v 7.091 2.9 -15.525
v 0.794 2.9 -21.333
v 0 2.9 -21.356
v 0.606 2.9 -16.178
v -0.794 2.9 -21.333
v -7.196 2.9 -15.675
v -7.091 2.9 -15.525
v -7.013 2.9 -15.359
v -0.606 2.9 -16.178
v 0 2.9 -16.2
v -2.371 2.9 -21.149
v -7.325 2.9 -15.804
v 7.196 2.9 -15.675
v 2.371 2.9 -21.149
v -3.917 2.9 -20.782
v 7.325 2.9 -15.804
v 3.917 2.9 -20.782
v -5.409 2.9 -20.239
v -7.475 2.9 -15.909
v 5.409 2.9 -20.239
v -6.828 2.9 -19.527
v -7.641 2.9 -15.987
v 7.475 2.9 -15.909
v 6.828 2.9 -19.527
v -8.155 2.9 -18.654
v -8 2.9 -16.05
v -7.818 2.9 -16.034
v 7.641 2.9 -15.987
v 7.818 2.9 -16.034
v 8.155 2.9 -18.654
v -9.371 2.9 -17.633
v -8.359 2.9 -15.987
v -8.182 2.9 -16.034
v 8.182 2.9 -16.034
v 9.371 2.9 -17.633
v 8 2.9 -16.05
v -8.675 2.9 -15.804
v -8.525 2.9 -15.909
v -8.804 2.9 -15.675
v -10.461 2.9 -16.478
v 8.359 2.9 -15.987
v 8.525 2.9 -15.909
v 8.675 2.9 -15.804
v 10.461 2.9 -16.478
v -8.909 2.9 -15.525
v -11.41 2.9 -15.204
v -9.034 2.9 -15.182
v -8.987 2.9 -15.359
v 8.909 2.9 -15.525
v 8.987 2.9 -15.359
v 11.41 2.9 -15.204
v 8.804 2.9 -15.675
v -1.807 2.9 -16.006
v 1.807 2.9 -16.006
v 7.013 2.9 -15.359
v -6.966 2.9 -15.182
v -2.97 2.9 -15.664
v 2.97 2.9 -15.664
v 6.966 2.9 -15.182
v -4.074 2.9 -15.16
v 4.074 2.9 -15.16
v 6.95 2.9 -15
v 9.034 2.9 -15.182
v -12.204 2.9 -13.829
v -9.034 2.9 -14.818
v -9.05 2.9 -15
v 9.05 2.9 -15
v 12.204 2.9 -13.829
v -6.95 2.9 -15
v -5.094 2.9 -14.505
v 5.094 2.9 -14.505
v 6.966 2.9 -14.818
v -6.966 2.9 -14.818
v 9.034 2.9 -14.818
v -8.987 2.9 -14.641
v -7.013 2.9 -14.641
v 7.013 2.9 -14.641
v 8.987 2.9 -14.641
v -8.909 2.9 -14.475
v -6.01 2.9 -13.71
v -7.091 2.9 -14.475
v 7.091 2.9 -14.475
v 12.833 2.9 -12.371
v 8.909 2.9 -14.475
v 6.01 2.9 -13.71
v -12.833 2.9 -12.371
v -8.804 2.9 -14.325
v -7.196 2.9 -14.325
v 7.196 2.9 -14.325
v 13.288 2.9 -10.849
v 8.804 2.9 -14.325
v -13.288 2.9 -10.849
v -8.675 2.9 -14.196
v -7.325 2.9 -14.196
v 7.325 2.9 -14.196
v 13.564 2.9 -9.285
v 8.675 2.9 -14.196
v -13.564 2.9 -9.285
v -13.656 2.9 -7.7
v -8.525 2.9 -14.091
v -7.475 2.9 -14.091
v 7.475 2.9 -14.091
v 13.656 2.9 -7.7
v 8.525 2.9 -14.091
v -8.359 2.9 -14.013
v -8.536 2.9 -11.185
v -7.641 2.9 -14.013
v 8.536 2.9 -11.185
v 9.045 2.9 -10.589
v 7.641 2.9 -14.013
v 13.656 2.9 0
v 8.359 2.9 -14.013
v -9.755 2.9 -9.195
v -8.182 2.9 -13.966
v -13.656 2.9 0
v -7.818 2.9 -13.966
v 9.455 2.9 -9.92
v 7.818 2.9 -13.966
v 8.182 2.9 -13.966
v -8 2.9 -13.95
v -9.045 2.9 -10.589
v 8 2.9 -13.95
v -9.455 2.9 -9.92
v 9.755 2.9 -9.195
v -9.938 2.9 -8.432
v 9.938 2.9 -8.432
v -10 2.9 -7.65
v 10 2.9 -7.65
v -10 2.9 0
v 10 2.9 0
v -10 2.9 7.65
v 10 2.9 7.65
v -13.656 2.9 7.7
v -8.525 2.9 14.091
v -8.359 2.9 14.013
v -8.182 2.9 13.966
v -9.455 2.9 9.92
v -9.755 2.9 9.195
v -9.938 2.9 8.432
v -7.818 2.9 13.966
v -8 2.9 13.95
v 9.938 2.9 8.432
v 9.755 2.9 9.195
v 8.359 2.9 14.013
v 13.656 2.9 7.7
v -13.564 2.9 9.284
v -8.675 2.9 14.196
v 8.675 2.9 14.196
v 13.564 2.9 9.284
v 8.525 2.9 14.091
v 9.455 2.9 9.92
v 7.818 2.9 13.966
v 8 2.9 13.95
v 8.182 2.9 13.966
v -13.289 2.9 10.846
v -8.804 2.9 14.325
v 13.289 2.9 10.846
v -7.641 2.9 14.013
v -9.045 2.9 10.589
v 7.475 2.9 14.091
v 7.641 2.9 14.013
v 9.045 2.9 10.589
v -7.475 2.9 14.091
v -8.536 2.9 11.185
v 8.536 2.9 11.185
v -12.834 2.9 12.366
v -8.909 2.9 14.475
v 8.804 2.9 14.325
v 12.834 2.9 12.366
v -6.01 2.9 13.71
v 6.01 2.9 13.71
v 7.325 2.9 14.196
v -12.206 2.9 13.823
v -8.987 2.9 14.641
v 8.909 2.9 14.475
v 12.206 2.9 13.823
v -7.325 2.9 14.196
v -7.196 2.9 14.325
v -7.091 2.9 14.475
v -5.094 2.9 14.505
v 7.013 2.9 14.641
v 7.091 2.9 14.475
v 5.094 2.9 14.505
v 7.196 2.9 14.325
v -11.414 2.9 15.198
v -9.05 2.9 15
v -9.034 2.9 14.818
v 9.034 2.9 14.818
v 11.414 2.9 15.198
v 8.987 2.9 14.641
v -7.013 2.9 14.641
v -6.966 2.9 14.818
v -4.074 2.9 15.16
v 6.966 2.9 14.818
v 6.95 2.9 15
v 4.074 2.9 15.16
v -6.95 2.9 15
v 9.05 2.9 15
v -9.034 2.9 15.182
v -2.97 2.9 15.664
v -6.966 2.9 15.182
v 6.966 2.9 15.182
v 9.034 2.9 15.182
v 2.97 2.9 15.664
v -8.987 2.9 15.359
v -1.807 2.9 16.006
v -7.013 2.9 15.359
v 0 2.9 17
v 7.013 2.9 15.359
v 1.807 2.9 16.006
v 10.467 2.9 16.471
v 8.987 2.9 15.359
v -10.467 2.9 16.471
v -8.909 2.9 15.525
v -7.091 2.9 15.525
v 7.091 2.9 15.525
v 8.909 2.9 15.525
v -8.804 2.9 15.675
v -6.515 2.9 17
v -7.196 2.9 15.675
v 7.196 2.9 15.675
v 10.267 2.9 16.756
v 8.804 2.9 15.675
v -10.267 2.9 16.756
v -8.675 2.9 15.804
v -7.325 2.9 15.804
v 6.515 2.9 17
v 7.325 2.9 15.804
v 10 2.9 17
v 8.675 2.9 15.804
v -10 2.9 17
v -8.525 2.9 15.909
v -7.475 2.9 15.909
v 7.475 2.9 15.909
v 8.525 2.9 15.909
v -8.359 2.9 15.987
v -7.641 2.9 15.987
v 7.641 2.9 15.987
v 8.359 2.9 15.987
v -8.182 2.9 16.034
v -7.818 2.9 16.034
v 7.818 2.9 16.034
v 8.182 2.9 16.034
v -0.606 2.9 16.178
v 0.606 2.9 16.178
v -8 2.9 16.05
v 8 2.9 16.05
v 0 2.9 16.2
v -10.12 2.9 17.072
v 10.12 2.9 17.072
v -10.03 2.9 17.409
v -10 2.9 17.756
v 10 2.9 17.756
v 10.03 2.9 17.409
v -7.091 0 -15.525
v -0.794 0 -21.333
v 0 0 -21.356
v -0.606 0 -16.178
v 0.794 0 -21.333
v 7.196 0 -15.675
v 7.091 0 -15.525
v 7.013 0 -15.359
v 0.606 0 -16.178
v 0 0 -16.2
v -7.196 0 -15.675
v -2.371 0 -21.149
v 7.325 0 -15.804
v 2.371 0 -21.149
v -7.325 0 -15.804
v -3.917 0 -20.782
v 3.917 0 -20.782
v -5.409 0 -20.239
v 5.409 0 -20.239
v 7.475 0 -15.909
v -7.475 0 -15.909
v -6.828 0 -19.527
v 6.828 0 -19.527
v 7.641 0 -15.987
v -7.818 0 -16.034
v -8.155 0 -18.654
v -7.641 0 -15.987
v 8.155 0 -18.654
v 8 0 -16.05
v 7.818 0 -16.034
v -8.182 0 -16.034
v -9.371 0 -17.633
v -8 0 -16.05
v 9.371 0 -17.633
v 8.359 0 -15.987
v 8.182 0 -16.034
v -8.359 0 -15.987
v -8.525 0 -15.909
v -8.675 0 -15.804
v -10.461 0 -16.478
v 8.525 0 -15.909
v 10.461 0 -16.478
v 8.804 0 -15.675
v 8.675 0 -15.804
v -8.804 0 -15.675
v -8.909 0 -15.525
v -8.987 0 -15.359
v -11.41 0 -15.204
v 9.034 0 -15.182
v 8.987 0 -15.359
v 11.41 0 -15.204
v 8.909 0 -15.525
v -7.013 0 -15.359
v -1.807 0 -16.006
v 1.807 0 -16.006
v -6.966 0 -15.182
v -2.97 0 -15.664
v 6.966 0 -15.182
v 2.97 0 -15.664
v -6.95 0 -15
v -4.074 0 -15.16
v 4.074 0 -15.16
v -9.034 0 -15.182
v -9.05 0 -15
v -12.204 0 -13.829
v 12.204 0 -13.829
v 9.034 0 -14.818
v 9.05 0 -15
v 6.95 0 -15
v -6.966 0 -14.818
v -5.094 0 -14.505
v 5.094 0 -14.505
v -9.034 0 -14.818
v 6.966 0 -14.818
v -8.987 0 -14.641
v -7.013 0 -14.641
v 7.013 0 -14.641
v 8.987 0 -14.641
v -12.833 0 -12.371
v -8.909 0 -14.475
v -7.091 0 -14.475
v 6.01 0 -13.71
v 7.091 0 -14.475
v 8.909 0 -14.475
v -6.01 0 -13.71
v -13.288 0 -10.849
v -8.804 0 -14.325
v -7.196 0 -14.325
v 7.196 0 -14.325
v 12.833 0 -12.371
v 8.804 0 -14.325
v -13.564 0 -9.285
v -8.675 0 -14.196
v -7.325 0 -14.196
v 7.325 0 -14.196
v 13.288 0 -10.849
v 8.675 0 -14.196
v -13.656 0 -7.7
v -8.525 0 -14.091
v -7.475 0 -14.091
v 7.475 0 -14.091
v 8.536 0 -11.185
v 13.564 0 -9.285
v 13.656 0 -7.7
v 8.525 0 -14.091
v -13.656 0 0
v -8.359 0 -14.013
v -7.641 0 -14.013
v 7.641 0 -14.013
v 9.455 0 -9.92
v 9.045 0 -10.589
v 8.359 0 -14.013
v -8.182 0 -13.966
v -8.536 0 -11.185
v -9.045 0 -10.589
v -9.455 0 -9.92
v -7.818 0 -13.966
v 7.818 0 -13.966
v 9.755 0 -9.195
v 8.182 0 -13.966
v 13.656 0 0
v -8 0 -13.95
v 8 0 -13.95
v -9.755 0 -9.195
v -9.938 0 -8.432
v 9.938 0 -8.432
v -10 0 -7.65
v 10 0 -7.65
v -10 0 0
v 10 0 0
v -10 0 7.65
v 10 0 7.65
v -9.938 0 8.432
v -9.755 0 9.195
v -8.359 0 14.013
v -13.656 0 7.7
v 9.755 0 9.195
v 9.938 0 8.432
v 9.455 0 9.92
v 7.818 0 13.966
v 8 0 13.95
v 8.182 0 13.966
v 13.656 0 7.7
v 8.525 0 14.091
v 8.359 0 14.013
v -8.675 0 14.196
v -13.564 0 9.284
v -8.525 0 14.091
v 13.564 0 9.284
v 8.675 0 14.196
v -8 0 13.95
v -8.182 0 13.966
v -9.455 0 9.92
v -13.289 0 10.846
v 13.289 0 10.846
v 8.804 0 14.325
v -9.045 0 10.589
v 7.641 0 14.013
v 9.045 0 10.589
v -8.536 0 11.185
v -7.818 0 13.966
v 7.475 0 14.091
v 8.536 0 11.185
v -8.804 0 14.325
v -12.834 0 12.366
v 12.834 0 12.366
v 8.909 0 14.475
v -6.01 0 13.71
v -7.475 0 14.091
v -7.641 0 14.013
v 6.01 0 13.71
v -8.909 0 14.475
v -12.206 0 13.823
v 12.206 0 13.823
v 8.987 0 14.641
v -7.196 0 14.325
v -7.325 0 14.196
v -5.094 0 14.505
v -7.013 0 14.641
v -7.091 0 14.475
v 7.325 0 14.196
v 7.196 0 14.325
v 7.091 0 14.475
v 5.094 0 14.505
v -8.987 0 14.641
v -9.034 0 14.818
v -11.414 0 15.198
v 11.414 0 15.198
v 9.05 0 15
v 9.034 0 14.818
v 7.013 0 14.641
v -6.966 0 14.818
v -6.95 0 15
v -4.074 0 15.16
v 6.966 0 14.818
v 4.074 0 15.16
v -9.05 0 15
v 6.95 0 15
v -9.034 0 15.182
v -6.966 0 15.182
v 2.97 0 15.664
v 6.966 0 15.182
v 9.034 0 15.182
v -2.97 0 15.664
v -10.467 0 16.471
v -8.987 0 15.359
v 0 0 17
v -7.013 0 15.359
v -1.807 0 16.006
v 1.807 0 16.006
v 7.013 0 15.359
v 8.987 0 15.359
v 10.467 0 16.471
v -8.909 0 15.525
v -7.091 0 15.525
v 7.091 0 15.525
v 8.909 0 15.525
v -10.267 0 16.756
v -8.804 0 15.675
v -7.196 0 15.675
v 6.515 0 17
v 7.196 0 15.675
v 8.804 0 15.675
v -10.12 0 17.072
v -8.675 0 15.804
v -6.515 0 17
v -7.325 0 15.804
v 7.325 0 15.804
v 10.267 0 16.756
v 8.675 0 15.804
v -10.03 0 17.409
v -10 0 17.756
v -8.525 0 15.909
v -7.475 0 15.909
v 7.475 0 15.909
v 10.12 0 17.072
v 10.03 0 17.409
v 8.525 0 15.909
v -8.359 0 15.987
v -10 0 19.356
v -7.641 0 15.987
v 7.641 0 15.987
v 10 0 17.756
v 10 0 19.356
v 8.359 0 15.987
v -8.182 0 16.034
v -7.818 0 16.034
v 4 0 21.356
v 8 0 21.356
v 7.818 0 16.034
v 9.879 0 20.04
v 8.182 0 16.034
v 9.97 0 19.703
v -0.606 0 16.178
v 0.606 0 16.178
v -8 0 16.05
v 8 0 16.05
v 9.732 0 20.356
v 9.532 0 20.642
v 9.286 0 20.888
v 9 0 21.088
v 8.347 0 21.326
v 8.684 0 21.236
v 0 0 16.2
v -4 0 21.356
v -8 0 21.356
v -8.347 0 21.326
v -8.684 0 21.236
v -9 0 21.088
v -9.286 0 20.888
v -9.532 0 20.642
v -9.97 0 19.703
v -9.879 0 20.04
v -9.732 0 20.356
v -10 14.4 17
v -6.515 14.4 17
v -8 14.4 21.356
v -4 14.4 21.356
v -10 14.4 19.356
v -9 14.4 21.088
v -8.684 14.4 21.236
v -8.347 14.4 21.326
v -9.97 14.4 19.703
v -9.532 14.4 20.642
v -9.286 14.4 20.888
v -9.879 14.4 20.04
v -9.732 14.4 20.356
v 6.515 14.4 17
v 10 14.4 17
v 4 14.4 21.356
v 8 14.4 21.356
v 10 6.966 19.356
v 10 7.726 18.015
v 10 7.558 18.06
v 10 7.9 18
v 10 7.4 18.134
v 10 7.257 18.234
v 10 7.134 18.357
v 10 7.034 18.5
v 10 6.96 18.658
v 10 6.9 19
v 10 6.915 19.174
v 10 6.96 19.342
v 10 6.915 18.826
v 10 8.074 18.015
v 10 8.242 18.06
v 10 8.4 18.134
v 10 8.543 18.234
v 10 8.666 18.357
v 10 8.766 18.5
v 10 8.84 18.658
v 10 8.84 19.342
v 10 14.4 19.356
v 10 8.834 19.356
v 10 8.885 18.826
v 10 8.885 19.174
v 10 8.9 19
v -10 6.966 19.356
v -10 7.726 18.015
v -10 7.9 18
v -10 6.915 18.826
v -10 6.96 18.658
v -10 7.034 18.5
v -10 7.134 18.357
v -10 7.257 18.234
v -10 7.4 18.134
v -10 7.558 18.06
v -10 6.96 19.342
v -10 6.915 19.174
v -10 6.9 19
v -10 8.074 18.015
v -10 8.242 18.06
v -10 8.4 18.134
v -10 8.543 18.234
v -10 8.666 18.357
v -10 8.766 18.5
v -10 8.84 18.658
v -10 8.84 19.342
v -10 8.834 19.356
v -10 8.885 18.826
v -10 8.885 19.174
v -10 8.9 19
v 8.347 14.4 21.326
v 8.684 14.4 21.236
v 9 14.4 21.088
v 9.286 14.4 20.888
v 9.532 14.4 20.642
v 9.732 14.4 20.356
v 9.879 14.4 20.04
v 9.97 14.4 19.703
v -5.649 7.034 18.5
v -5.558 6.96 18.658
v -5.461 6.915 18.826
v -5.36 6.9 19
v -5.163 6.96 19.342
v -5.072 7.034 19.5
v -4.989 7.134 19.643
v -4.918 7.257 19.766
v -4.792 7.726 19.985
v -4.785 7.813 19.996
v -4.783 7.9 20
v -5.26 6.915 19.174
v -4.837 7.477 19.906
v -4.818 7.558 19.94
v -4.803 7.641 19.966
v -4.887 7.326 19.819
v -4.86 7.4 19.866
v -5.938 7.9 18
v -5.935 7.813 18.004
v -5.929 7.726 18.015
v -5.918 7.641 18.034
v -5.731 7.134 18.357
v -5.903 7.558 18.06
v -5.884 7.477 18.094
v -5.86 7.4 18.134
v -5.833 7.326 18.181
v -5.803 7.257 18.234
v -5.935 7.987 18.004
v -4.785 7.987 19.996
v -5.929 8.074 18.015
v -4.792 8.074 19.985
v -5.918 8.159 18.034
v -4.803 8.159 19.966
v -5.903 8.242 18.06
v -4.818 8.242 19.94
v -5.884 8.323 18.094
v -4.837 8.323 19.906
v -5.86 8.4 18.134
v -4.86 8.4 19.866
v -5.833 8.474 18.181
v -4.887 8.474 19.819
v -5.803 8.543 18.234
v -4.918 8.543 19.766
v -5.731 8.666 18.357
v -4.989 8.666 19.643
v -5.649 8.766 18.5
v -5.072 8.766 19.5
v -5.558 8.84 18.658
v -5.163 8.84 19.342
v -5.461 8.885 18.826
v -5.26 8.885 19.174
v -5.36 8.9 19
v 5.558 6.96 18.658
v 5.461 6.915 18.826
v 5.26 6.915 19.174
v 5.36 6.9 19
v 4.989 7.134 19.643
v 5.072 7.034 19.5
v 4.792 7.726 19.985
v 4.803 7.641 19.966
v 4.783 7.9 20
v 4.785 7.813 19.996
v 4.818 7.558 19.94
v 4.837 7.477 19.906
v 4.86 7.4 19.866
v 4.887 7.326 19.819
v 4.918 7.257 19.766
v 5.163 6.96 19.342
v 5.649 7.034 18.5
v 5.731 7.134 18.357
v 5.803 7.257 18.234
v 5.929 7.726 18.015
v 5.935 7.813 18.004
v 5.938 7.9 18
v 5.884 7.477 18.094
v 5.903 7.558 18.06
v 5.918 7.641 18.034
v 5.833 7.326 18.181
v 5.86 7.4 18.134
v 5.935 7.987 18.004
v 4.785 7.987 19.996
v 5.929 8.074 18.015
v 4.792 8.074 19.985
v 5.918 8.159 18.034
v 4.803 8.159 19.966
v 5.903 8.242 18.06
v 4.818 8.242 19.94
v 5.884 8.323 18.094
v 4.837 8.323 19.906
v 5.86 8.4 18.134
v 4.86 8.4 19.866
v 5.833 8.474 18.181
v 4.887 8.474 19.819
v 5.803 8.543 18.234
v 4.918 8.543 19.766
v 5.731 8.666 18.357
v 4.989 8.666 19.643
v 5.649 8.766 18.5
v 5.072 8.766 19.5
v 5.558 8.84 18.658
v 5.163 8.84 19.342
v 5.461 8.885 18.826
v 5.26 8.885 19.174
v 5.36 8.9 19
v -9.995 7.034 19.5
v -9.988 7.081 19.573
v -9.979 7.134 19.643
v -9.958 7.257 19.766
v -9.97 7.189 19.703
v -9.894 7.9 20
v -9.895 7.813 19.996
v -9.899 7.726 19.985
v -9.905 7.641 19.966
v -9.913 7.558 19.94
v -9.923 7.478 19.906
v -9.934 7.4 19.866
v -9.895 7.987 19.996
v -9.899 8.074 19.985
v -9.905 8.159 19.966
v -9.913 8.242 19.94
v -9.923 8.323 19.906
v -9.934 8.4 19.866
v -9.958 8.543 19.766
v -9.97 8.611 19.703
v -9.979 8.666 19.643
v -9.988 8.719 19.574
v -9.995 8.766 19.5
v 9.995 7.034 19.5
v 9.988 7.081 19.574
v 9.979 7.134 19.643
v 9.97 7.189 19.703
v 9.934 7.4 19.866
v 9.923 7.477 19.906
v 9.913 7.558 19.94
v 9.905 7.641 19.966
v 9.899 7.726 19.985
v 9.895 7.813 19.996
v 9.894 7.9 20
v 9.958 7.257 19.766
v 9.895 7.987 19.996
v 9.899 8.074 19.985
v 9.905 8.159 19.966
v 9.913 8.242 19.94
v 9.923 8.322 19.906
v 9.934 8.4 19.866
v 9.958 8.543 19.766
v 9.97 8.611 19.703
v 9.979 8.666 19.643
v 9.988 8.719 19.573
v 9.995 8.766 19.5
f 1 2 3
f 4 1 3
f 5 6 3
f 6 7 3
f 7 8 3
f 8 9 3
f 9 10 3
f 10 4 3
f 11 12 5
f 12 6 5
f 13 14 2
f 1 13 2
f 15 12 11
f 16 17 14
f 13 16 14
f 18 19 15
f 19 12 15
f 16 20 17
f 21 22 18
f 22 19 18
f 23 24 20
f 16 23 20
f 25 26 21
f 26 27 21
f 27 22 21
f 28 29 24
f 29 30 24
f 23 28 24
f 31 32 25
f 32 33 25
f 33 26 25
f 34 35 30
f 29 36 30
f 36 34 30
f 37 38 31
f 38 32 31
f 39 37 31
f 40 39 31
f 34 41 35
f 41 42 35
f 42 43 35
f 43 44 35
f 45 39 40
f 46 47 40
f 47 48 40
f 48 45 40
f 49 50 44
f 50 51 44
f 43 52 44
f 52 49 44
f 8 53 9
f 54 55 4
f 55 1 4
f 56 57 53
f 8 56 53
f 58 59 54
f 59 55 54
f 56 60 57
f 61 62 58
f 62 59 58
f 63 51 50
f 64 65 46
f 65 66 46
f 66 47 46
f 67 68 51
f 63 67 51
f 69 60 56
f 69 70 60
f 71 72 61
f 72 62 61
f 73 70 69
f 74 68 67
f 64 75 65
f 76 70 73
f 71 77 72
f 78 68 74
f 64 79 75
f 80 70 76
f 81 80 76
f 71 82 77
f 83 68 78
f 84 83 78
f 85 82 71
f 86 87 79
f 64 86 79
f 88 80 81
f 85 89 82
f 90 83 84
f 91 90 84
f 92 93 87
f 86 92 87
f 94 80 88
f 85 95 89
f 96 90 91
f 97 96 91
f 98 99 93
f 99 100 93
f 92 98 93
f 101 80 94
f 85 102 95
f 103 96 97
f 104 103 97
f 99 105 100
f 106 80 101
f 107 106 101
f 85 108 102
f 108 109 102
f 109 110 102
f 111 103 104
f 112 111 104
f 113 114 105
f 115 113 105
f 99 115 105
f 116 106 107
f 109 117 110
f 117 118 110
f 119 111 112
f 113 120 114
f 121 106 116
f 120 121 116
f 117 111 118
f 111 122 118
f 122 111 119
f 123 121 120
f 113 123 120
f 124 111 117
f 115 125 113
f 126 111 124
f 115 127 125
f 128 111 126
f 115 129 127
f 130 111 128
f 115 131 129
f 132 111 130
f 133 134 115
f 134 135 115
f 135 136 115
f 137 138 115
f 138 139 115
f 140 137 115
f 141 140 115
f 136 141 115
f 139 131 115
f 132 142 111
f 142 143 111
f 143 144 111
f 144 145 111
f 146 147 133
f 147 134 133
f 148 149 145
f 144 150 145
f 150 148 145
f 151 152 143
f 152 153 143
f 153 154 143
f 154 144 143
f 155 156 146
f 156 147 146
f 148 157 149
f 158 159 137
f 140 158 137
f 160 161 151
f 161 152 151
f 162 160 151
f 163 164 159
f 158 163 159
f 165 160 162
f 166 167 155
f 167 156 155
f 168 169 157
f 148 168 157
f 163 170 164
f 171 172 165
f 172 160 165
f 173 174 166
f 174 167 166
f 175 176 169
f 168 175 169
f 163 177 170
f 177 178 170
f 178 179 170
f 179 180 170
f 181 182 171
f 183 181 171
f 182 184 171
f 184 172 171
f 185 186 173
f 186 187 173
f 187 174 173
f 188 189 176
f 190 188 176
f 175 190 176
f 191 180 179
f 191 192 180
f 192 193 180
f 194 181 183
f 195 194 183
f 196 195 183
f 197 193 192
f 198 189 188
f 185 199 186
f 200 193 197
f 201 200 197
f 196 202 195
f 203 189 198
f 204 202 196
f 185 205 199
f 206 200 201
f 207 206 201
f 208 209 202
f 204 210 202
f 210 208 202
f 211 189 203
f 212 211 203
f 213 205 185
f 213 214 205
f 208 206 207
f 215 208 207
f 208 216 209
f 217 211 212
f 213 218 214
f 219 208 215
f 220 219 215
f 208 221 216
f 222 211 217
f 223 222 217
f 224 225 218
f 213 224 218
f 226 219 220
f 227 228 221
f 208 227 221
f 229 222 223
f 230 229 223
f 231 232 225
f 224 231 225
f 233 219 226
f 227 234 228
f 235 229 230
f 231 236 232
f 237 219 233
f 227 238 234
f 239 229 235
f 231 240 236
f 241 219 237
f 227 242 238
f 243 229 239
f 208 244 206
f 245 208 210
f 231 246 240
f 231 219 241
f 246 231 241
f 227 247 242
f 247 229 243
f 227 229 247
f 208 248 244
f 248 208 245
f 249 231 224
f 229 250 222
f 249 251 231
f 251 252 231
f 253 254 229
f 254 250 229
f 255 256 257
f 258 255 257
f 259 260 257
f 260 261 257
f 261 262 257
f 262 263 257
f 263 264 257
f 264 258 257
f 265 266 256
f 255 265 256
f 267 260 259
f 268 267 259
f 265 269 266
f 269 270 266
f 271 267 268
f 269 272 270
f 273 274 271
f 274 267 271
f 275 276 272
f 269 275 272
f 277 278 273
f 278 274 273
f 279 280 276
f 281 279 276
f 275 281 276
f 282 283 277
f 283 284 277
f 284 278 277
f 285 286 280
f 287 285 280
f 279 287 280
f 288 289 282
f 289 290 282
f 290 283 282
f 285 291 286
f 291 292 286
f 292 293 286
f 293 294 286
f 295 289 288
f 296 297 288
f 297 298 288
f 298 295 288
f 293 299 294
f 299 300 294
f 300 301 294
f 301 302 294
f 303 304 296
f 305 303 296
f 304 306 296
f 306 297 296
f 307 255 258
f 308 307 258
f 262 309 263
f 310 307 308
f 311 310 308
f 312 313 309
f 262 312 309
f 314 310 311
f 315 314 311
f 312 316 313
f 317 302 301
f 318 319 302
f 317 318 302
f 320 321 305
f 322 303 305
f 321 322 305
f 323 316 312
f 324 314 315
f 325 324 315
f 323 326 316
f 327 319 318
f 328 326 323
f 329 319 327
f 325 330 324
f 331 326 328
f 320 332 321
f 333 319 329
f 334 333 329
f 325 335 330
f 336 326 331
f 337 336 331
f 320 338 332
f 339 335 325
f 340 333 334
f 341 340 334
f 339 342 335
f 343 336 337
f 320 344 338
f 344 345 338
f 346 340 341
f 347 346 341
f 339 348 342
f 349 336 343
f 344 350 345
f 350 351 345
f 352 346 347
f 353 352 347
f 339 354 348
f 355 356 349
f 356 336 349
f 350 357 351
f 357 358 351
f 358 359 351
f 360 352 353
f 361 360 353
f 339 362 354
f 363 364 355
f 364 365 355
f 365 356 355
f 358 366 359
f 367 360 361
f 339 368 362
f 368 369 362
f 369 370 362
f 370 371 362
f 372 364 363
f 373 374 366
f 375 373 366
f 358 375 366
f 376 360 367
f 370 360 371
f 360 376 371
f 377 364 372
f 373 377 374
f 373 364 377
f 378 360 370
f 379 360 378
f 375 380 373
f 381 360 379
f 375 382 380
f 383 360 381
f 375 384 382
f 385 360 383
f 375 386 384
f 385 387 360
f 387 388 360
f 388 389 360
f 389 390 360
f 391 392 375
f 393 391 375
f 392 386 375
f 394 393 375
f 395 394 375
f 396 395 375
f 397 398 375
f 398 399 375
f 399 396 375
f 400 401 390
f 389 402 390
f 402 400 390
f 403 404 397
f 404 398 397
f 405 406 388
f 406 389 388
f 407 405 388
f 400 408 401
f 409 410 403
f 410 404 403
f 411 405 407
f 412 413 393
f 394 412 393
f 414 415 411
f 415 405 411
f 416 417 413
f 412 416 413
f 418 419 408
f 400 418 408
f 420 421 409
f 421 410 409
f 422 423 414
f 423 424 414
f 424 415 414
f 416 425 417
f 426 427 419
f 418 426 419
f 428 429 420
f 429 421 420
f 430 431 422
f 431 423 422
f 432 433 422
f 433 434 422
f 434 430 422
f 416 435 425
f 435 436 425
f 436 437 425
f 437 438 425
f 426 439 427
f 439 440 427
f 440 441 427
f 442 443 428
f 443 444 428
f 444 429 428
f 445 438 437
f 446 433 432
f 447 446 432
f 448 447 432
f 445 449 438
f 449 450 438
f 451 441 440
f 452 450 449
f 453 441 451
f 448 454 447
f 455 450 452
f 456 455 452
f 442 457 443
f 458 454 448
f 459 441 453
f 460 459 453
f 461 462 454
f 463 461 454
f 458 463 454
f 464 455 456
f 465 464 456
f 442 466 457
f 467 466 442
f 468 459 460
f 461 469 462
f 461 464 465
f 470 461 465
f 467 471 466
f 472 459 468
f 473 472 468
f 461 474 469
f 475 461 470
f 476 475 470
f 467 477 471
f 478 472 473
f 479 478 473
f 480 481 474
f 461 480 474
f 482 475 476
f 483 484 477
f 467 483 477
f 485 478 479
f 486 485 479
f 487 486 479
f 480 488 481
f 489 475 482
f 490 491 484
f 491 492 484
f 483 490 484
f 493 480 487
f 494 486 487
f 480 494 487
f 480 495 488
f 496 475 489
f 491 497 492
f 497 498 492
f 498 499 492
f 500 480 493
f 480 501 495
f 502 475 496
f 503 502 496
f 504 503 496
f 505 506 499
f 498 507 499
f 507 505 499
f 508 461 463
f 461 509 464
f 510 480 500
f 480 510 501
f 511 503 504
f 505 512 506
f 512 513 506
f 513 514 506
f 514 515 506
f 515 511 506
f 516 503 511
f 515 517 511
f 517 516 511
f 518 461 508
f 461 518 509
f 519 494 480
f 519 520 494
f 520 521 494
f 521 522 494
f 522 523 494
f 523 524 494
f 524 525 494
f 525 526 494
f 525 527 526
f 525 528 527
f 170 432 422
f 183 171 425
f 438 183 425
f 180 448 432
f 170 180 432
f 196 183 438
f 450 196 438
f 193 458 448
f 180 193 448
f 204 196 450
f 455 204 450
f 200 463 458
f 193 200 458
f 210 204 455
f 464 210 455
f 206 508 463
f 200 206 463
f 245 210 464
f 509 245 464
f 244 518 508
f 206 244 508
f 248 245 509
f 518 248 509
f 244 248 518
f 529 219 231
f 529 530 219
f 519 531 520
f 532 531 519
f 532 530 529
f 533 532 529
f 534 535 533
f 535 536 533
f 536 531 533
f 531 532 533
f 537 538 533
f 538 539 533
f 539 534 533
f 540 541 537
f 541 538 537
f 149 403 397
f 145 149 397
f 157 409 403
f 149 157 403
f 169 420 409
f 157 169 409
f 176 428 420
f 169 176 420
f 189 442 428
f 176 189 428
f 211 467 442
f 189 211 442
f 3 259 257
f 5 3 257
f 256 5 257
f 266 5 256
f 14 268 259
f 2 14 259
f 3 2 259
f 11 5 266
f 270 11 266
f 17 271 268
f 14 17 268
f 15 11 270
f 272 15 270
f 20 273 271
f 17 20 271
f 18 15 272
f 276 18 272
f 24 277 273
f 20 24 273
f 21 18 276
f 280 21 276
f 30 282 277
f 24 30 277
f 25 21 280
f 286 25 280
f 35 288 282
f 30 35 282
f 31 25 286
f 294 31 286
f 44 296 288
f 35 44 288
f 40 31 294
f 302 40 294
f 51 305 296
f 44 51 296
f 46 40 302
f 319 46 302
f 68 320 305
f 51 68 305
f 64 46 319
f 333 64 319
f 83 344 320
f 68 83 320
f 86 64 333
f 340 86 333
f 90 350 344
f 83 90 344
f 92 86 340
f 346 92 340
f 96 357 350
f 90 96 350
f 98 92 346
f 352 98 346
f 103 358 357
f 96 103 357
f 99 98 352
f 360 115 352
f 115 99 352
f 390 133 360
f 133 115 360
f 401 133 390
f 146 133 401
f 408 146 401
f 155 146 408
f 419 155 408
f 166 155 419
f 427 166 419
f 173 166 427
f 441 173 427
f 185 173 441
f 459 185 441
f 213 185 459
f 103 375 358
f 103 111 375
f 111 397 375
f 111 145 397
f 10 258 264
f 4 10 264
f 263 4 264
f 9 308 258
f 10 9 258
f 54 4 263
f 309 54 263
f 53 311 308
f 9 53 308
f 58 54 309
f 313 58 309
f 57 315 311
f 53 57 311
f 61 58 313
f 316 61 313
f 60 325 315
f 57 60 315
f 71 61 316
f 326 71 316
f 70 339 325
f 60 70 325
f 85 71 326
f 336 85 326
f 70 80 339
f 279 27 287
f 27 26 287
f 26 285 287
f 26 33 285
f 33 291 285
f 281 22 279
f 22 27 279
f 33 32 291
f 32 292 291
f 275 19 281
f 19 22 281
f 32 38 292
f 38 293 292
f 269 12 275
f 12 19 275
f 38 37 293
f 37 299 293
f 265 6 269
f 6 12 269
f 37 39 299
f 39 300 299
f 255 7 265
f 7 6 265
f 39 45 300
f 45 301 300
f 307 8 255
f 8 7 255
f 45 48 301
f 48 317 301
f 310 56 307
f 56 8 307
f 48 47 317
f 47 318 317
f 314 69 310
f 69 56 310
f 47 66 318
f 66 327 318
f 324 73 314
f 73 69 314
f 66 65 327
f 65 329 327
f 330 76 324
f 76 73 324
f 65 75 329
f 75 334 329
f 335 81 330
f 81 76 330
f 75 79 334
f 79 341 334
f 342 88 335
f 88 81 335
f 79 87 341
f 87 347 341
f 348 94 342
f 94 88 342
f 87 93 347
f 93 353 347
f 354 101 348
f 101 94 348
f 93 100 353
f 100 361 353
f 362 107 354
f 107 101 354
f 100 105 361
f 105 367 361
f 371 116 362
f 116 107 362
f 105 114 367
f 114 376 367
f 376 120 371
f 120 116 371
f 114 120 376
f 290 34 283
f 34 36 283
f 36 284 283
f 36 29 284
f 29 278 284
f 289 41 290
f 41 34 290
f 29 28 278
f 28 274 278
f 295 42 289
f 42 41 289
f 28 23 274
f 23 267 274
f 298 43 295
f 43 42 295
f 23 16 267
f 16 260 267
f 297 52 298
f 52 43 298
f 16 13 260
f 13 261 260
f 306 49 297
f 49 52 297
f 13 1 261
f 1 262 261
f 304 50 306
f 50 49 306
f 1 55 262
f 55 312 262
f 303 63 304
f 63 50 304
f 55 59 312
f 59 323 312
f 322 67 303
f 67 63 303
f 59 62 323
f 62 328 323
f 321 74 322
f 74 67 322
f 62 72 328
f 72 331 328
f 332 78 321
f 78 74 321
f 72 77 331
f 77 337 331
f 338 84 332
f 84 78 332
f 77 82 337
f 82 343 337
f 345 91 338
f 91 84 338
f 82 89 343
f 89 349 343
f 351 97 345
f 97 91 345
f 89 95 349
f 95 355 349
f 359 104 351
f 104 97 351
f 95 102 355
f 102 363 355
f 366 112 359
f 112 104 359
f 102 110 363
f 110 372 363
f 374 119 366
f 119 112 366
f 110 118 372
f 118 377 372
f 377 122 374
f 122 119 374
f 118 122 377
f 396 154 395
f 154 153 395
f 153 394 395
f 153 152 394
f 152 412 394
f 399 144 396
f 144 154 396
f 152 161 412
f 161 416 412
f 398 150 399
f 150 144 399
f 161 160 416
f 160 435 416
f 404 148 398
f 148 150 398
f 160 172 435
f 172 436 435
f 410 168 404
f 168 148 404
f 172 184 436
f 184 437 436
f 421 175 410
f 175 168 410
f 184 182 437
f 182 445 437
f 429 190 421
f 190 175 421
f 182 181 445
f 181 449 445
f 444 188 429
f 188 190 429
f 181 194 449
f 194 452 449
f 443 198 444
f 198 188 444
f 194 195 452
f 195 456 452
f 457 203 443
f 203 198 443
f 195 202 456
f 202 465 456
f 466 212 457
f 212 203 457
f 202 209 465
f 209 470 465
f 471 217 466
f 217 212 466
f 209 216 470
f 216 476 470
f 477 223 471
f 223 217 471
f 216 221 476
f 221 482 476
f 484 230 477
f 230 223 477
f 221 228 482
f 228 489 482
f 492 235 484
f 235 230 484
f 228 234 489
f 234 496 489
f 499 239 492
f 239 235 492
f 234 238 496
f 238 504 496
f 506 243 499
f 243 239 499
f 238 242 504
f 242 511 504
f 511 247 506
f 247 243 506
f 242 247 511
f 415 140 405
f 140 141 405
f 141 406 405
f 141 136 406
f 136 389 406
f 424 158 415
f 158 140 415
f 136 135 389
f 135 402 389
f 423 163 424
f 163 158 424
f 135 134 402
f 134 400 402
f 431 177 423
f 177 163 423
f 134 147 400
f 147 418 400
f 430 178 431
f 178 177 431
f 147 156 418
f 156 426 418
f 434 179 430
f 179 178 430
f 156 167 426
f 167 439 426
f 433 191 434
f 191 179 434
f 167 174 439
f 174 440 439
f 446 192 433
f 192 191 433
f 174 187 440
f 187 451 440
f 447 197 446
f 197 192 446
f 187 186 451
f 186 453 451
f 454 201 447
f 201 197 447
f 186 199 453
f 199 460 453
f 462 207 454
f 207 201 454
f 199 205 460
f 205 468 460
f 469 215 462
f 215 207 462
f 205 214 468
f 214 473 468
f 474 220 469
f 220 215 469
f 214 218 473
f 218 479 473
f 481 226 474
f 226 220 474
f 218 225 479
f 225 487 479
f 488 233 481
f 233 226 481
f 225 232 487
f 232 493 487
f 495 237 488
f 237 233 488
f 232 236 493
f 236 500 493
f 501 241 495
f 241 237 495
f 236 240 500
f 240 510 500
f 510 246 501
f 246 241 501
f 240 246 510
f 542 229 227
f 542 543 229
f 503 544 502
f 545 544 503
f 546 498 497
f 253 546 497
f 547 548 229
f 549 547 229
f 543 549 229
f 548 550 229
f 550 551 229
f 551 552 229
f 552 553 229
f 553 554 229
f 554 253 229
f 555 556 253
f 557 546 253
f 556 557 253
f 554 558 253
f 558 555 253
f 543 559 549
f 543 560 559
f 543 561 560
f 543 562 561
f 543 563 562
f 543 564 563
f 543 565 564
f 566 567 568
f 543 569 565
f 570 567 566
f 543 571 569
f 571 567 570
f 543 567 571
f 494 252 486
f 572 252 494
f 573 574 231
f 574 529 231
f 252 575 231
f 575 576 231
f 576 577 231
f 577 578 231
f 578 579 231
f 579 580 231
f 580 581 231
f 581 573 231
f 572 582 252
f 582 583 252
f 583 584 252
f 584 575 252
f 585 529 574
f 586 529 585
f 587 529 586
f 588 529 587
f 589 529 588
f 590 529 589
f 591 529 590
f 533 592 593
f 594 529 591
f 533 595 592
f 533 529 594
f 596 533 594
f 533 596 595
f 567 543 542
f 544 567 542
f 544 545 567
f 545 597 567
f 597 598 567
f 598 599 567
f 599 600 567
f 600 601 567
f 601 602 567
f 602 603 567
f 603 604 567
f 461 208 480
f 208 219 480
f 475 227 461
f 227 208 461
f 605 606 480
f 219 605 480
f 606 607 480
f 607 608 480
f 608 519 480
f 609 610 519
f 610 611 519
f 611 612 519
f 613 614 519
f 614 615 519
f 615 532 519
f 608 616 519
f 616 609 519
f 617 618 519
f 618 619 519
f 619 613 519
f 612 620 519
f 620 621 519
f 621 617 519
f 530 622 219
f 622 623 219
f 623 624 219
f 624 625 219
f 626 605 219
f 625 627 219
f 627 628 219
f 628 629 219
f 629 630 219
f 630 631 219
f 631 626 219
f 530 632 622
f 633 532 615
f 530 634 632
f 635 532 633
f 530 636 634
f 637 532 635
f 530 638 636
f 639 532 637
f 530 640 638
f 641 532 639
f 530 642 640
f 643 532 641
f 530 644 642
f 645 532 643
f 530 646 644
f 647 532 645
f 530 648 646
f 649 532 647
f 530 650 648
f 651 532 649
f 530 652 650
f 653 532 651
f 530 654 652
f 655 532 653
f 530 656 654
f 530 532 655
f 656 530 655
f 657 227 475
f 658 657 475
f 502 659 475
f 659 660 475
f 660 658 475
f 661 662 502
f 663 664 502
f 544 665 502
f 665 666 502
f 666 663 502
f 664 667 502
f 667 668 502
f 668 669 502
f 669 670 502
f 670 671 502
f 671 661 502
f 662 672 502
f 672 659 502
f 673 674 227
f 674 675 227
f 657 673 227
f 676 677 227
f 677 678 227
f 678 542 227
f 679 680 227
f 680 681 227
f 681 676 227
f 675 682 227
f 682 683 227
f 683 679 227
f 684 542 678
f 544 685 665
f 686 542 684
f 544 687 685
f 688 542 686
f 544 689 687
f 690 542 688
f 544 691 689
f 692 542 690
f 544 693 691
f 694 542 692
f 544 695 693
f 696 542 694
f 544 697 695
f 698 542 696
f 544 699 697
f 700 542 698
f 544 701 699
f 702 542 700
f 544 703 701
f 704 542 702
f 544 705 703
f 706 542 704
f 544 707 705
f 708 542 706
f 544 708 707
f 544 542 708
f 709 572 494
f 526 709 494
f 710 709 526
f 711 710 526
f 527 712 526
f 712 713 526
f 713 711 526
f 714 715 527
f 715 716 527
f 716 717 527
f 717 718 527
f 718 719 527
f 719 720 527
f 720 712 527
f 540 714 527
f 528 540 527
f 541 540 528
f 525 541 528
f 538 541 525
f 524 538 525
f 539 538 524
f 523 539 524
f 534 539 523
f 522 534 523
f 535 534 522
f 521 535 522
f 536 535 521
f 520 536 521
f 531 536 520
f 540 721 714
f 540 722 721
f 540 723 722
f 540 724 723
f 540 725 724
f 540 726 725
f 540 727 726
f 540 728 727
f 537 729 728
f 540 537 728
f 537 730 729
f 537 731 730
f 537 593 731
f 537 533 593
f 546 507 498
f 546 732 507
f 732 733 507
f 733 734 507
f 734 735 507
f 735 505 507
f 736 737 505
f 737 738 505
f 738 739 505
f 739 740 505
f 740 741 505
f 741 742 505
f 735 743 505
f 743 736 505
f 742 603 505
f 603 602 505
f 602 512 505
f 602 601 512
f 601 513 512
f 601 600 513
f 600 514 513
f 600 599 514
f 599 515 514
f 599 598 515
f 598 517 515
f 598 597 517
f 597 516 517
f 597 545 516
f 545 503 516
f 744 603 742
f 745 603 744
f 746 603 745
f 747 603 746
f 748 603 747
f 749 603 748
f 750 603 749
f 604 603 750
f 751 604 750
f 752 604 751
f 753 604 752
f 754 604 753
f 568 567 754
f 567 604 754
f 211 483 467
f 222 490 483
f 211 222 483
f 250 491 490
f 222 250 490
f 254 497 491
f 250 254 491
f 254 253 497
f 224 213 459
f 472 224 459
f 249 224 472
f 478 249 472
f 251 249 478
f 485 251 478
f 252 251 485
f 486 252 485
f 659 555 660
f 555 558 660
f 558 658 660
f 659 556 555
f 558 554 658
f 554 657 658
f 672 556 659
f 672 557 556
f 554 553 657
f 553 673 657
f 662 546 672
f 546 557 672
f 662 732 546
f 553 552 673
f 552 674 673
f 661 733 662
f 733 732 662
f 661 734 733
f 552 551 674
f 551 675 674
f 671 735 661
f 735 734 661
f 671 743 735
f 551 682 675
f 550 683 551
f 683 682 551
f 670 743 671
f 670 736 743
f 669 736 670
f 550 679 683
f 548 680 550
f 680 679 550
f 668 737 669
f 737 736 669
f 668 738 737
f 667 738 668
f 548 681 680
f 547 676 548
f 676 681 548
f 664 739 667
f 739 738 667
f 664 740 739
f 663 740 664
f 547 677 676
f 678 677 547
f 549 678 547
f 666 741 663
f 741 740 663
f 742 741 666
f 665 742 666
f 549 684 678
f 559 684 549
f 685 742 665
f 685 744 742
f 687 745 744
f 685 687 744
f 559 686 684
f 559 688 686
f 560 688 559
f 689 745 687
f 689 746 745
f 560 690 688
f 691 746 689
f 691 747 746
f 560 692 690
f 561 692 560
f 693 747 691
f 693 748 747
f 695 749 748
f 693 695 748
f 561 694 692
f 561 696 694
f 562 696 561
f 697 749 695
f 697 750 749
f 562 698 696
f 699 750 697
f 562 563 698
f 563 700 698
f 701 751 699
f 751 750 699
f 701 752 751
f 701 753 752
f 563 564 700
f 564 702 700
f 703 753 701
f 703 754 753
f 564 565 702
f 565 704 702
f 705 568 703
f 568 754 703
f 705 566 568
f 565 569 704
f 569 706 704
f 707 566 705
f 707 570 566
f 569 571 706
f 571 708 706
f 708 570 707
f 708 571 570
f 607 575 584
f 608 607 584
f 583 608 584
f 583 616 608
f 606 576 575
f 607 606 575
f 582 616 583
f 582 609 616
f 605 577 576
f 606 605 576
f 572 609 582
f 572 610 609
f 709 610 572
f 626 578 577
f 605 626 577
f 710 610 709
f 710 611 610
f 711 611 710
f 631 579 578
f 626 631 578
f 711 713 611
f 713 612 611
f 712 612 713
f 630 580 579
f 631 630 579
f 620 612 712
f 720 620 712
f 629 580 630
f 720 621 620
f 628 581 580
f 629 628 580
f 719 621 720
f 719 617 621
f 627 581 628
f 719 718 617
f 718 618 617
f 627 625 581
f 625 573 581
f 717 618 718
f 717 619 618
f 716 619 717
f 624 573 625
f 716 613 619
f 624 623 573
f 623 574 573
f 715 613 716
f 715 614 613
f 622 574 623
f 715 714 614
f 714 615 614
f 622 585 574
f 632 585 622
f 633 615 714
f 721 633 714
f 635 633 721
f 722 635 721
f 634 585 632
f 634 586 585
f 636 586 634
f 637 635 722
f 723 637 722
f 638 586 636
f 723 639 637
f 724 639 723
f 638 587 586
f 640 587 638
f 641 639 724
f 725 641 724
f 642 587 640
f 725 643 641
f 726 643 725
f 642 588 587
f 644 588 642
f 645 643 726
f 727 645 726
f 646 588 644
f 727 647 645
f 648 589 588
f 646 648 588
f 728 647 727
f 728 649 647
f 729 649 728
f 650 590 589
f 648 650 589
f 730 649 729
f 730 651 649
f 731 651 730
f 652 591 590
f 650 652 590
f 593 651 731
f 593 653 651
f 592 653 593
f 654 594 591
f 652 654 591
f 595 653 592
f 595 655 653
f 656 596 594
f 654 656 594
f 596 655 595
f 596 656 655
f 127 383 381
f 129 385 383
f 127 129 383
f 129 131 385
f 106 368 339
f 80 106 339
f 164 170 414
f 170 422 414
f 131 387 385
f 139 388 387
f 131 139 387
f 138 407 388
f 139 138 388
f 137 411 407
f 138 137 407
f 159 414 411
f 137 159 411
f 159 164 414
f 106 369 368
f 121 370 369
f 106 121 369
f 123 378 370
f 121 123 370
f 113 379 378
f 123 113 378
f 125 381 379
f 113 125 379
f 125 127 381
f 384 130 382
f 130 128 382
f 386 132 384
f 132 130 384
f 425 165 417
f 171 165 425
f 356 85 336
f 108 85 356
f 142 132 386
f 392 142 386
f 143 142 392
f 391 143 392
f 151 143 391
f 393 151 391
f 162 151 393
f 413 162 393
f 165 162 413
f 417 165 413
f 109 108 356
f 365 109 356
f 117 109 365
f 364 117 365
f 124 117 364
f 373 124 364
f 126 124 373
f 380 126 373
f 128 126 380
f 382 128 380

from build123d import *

# Parameters (mm, degrees)
BOSS_EXTRUDE6_DEPTH      = 2.9
SKETCH27_R               = 1.05
CUT_EXTRUDE12_DEPTH      = 3.9
SKETCH29_W               = 20
SKETCH29_H               = 4.356134153
BOSS_EXTRUDE8_DEPTH      = 11.5
BOSS_EXTRUDE8_DEPTH_BACK = 2.9
CUT_EXTRUDE13_DEPTH      = 15.4
FILLET1_R                = 2
SKETCH31_R               = 1
CUT_EXTRUDE14_DEPTH      = 4.656134153
CUT_EXTRUDE14_DEPTH_BACK = 24.656134153
CUT_EXTRUDE16_DEPTH      = 10
FILLET3_R                = 5
FILLET3_OF_MIRROR2_R     = 5


with BuildPart() as part:
    # Sketch26 → Boss-Extrude6 (new body)
    with BuildSketch(Plane(origin=(0, 0, 0), x_dir=(1, 0, 0), z_dir=(0, 1, 0))):
        with BuildLine():
            Line((-13.656134153, -7.7), (-13.656134153, 7.7))
            ThreePointArc((-13.656134153, 7.7), (0, 21.356134153), (13.656134153, 7.7))
            Line((13.656134153, 7.7), (13.656134153, -7.7))
            ThreePointArc((13.656134153, -7.7), (0, -21.356134153), (-13.656134153, -7.7))
        make_face()
        with BuildLine():
            Line((-8.5, 7.7), (-8.5, -7.7))
            ThreePointArc((-8.5, -7.7), (0, -16.2), (8.5, -7.7))
            Line((8.5, -7.7), (8.5, 7.7))
            ThreePointArc((8.5, 7.7), (0, 16.2), (-8.5, 7.7))
        make_face(mode=Mode.SUBTRACT)
    extrude(amount=BOSS_EXTRUDE6_DEPTH)

    # Sketch27 → Cut-Extrude12 (cut, through all)
    with BuildSketch(Plane(origin=(0, 2.9, 0), x_dir=(1, 0, 0), z_dir=(0, 1, 0))):
        with Locations((-8, 15)):
            Circle(SKETCH27_R)
        with Locations((8, 15)):
            Circle(SKETCH27_R)
        with Locations((8, -15)):
            Circle(SKETCH27_R)
        with Locations((-8, -15)):
            Circle(SKETCH27_R)
    extrude(amount=-CUT_EXTRUDE12_DEPTH, mode=Mode.SUBTRACT)

    # Sketch29 → Boss-Extrude8 (add, two sides)
    with BuildSketch(Plane(origin=(0, 2.9, 0), x_dir=(1, 0, 0), z_dir=(0, 1, 0))) as boss_extrude8_sk:
        with Locations((0, -19.178067076)):
            Rectangle(SKETCH29_W, SKETCH29_H)
    extrude(amount=BOSS_EXTRUDE8_DEPTH)
    extrude(boss_extrude8_sk.sketch, amount=-BOSS_EXTRUDE8_DEPTH_BACK)

    # Sketch30 → Cut-Extrude13 (cut, through all)
    with BuildSketch(Plane(origin=(0, 14.4, 0), x_dir=(1, 0, 0), z_dir=(0, 1, 0))):
        Polygon((-4, -21.356134153), (-6.515015226, -17), (6.515015226, -17), (4, -21.356134153), align=None)
    extrude(amount=-CUT_EXTRUDE13_DEPTH, mode=Mode.SUBTRACT)

    # Fillet1
    fillet1_edges = [part.edges().sort_by_distance(p)[0] for p in [
        (10, 7.2, 21.356134153),
        (10, 1.45, 17),
        (-10, 1.45, 17),
        (-10, 7.2, 21.356134153),
    ]]
    fillet(fillet1_edges, radius=FILLET1_R)

    # Sketch31 → Cut-Extrude14 (cut, two sides)
    with BuildSketch(Plane.ZY.offset(10)) as cut_extrude14_sk:
        with Locations((19, 7.9)):
            Circle(SKETCH31_R)
    extrude(amount=CUT_EXTRUDE14_DEPTH, mode=Mode.SUBTRACT)
    extrude(cut_extrude14_sk.sketch, amount=-CUT_EXTRUDE14_DEPTH_BACK, mode=Mode.SUBTRACT)

    # Sketch34 → Cut-Extrude16 (cut)
    with BuildSketch(Plane(origin=(0, 2.9, 0), x_dir=(1, 0, 0), z_dir=(0, 1, 0))):
        Polygon((-10, 9.72081528), (-6.01040764, 13.71040764), (-6.01040764, -13.71040764), (-10, -9.72081528), align=None)
    cut_extrude16 = extrude(amount=-CUT_EXTRUDE16_DEPTH, mode=Mode.SUBTRACT)

    # Fillet3
    fillet3_edges = [part.edges().sort_by_distance(p)[0] for p in [
        (-10, 1.45, 9.72081528),
        (-10, 1.45, -9.72081528),
    ]]
    fillet(fillet3_edges, radius=FILLET3_R)

    # Mirror2: Cut-Extrude16 across plane
    add(cut_extrude16.mirror(Plane(origin=(0, 0, 0), x_dir=(0, 0, 1), z_dir=(1, 0, 0))), mode=Mode.SUBTRACT)

    # Fillet3 of Mirror2
    fillet3_of_mirror2_edges = [part.edges().sort_by_distance(p)[0] for p in [
        (10, 1.45, 9.72081528),
        (10, 1.45, -9.72081528),
    ]]
    fillet(fillet3_of_mirror2_edges, radius=FILLET3_OF_MIRROR2_R)


solid = part.part
